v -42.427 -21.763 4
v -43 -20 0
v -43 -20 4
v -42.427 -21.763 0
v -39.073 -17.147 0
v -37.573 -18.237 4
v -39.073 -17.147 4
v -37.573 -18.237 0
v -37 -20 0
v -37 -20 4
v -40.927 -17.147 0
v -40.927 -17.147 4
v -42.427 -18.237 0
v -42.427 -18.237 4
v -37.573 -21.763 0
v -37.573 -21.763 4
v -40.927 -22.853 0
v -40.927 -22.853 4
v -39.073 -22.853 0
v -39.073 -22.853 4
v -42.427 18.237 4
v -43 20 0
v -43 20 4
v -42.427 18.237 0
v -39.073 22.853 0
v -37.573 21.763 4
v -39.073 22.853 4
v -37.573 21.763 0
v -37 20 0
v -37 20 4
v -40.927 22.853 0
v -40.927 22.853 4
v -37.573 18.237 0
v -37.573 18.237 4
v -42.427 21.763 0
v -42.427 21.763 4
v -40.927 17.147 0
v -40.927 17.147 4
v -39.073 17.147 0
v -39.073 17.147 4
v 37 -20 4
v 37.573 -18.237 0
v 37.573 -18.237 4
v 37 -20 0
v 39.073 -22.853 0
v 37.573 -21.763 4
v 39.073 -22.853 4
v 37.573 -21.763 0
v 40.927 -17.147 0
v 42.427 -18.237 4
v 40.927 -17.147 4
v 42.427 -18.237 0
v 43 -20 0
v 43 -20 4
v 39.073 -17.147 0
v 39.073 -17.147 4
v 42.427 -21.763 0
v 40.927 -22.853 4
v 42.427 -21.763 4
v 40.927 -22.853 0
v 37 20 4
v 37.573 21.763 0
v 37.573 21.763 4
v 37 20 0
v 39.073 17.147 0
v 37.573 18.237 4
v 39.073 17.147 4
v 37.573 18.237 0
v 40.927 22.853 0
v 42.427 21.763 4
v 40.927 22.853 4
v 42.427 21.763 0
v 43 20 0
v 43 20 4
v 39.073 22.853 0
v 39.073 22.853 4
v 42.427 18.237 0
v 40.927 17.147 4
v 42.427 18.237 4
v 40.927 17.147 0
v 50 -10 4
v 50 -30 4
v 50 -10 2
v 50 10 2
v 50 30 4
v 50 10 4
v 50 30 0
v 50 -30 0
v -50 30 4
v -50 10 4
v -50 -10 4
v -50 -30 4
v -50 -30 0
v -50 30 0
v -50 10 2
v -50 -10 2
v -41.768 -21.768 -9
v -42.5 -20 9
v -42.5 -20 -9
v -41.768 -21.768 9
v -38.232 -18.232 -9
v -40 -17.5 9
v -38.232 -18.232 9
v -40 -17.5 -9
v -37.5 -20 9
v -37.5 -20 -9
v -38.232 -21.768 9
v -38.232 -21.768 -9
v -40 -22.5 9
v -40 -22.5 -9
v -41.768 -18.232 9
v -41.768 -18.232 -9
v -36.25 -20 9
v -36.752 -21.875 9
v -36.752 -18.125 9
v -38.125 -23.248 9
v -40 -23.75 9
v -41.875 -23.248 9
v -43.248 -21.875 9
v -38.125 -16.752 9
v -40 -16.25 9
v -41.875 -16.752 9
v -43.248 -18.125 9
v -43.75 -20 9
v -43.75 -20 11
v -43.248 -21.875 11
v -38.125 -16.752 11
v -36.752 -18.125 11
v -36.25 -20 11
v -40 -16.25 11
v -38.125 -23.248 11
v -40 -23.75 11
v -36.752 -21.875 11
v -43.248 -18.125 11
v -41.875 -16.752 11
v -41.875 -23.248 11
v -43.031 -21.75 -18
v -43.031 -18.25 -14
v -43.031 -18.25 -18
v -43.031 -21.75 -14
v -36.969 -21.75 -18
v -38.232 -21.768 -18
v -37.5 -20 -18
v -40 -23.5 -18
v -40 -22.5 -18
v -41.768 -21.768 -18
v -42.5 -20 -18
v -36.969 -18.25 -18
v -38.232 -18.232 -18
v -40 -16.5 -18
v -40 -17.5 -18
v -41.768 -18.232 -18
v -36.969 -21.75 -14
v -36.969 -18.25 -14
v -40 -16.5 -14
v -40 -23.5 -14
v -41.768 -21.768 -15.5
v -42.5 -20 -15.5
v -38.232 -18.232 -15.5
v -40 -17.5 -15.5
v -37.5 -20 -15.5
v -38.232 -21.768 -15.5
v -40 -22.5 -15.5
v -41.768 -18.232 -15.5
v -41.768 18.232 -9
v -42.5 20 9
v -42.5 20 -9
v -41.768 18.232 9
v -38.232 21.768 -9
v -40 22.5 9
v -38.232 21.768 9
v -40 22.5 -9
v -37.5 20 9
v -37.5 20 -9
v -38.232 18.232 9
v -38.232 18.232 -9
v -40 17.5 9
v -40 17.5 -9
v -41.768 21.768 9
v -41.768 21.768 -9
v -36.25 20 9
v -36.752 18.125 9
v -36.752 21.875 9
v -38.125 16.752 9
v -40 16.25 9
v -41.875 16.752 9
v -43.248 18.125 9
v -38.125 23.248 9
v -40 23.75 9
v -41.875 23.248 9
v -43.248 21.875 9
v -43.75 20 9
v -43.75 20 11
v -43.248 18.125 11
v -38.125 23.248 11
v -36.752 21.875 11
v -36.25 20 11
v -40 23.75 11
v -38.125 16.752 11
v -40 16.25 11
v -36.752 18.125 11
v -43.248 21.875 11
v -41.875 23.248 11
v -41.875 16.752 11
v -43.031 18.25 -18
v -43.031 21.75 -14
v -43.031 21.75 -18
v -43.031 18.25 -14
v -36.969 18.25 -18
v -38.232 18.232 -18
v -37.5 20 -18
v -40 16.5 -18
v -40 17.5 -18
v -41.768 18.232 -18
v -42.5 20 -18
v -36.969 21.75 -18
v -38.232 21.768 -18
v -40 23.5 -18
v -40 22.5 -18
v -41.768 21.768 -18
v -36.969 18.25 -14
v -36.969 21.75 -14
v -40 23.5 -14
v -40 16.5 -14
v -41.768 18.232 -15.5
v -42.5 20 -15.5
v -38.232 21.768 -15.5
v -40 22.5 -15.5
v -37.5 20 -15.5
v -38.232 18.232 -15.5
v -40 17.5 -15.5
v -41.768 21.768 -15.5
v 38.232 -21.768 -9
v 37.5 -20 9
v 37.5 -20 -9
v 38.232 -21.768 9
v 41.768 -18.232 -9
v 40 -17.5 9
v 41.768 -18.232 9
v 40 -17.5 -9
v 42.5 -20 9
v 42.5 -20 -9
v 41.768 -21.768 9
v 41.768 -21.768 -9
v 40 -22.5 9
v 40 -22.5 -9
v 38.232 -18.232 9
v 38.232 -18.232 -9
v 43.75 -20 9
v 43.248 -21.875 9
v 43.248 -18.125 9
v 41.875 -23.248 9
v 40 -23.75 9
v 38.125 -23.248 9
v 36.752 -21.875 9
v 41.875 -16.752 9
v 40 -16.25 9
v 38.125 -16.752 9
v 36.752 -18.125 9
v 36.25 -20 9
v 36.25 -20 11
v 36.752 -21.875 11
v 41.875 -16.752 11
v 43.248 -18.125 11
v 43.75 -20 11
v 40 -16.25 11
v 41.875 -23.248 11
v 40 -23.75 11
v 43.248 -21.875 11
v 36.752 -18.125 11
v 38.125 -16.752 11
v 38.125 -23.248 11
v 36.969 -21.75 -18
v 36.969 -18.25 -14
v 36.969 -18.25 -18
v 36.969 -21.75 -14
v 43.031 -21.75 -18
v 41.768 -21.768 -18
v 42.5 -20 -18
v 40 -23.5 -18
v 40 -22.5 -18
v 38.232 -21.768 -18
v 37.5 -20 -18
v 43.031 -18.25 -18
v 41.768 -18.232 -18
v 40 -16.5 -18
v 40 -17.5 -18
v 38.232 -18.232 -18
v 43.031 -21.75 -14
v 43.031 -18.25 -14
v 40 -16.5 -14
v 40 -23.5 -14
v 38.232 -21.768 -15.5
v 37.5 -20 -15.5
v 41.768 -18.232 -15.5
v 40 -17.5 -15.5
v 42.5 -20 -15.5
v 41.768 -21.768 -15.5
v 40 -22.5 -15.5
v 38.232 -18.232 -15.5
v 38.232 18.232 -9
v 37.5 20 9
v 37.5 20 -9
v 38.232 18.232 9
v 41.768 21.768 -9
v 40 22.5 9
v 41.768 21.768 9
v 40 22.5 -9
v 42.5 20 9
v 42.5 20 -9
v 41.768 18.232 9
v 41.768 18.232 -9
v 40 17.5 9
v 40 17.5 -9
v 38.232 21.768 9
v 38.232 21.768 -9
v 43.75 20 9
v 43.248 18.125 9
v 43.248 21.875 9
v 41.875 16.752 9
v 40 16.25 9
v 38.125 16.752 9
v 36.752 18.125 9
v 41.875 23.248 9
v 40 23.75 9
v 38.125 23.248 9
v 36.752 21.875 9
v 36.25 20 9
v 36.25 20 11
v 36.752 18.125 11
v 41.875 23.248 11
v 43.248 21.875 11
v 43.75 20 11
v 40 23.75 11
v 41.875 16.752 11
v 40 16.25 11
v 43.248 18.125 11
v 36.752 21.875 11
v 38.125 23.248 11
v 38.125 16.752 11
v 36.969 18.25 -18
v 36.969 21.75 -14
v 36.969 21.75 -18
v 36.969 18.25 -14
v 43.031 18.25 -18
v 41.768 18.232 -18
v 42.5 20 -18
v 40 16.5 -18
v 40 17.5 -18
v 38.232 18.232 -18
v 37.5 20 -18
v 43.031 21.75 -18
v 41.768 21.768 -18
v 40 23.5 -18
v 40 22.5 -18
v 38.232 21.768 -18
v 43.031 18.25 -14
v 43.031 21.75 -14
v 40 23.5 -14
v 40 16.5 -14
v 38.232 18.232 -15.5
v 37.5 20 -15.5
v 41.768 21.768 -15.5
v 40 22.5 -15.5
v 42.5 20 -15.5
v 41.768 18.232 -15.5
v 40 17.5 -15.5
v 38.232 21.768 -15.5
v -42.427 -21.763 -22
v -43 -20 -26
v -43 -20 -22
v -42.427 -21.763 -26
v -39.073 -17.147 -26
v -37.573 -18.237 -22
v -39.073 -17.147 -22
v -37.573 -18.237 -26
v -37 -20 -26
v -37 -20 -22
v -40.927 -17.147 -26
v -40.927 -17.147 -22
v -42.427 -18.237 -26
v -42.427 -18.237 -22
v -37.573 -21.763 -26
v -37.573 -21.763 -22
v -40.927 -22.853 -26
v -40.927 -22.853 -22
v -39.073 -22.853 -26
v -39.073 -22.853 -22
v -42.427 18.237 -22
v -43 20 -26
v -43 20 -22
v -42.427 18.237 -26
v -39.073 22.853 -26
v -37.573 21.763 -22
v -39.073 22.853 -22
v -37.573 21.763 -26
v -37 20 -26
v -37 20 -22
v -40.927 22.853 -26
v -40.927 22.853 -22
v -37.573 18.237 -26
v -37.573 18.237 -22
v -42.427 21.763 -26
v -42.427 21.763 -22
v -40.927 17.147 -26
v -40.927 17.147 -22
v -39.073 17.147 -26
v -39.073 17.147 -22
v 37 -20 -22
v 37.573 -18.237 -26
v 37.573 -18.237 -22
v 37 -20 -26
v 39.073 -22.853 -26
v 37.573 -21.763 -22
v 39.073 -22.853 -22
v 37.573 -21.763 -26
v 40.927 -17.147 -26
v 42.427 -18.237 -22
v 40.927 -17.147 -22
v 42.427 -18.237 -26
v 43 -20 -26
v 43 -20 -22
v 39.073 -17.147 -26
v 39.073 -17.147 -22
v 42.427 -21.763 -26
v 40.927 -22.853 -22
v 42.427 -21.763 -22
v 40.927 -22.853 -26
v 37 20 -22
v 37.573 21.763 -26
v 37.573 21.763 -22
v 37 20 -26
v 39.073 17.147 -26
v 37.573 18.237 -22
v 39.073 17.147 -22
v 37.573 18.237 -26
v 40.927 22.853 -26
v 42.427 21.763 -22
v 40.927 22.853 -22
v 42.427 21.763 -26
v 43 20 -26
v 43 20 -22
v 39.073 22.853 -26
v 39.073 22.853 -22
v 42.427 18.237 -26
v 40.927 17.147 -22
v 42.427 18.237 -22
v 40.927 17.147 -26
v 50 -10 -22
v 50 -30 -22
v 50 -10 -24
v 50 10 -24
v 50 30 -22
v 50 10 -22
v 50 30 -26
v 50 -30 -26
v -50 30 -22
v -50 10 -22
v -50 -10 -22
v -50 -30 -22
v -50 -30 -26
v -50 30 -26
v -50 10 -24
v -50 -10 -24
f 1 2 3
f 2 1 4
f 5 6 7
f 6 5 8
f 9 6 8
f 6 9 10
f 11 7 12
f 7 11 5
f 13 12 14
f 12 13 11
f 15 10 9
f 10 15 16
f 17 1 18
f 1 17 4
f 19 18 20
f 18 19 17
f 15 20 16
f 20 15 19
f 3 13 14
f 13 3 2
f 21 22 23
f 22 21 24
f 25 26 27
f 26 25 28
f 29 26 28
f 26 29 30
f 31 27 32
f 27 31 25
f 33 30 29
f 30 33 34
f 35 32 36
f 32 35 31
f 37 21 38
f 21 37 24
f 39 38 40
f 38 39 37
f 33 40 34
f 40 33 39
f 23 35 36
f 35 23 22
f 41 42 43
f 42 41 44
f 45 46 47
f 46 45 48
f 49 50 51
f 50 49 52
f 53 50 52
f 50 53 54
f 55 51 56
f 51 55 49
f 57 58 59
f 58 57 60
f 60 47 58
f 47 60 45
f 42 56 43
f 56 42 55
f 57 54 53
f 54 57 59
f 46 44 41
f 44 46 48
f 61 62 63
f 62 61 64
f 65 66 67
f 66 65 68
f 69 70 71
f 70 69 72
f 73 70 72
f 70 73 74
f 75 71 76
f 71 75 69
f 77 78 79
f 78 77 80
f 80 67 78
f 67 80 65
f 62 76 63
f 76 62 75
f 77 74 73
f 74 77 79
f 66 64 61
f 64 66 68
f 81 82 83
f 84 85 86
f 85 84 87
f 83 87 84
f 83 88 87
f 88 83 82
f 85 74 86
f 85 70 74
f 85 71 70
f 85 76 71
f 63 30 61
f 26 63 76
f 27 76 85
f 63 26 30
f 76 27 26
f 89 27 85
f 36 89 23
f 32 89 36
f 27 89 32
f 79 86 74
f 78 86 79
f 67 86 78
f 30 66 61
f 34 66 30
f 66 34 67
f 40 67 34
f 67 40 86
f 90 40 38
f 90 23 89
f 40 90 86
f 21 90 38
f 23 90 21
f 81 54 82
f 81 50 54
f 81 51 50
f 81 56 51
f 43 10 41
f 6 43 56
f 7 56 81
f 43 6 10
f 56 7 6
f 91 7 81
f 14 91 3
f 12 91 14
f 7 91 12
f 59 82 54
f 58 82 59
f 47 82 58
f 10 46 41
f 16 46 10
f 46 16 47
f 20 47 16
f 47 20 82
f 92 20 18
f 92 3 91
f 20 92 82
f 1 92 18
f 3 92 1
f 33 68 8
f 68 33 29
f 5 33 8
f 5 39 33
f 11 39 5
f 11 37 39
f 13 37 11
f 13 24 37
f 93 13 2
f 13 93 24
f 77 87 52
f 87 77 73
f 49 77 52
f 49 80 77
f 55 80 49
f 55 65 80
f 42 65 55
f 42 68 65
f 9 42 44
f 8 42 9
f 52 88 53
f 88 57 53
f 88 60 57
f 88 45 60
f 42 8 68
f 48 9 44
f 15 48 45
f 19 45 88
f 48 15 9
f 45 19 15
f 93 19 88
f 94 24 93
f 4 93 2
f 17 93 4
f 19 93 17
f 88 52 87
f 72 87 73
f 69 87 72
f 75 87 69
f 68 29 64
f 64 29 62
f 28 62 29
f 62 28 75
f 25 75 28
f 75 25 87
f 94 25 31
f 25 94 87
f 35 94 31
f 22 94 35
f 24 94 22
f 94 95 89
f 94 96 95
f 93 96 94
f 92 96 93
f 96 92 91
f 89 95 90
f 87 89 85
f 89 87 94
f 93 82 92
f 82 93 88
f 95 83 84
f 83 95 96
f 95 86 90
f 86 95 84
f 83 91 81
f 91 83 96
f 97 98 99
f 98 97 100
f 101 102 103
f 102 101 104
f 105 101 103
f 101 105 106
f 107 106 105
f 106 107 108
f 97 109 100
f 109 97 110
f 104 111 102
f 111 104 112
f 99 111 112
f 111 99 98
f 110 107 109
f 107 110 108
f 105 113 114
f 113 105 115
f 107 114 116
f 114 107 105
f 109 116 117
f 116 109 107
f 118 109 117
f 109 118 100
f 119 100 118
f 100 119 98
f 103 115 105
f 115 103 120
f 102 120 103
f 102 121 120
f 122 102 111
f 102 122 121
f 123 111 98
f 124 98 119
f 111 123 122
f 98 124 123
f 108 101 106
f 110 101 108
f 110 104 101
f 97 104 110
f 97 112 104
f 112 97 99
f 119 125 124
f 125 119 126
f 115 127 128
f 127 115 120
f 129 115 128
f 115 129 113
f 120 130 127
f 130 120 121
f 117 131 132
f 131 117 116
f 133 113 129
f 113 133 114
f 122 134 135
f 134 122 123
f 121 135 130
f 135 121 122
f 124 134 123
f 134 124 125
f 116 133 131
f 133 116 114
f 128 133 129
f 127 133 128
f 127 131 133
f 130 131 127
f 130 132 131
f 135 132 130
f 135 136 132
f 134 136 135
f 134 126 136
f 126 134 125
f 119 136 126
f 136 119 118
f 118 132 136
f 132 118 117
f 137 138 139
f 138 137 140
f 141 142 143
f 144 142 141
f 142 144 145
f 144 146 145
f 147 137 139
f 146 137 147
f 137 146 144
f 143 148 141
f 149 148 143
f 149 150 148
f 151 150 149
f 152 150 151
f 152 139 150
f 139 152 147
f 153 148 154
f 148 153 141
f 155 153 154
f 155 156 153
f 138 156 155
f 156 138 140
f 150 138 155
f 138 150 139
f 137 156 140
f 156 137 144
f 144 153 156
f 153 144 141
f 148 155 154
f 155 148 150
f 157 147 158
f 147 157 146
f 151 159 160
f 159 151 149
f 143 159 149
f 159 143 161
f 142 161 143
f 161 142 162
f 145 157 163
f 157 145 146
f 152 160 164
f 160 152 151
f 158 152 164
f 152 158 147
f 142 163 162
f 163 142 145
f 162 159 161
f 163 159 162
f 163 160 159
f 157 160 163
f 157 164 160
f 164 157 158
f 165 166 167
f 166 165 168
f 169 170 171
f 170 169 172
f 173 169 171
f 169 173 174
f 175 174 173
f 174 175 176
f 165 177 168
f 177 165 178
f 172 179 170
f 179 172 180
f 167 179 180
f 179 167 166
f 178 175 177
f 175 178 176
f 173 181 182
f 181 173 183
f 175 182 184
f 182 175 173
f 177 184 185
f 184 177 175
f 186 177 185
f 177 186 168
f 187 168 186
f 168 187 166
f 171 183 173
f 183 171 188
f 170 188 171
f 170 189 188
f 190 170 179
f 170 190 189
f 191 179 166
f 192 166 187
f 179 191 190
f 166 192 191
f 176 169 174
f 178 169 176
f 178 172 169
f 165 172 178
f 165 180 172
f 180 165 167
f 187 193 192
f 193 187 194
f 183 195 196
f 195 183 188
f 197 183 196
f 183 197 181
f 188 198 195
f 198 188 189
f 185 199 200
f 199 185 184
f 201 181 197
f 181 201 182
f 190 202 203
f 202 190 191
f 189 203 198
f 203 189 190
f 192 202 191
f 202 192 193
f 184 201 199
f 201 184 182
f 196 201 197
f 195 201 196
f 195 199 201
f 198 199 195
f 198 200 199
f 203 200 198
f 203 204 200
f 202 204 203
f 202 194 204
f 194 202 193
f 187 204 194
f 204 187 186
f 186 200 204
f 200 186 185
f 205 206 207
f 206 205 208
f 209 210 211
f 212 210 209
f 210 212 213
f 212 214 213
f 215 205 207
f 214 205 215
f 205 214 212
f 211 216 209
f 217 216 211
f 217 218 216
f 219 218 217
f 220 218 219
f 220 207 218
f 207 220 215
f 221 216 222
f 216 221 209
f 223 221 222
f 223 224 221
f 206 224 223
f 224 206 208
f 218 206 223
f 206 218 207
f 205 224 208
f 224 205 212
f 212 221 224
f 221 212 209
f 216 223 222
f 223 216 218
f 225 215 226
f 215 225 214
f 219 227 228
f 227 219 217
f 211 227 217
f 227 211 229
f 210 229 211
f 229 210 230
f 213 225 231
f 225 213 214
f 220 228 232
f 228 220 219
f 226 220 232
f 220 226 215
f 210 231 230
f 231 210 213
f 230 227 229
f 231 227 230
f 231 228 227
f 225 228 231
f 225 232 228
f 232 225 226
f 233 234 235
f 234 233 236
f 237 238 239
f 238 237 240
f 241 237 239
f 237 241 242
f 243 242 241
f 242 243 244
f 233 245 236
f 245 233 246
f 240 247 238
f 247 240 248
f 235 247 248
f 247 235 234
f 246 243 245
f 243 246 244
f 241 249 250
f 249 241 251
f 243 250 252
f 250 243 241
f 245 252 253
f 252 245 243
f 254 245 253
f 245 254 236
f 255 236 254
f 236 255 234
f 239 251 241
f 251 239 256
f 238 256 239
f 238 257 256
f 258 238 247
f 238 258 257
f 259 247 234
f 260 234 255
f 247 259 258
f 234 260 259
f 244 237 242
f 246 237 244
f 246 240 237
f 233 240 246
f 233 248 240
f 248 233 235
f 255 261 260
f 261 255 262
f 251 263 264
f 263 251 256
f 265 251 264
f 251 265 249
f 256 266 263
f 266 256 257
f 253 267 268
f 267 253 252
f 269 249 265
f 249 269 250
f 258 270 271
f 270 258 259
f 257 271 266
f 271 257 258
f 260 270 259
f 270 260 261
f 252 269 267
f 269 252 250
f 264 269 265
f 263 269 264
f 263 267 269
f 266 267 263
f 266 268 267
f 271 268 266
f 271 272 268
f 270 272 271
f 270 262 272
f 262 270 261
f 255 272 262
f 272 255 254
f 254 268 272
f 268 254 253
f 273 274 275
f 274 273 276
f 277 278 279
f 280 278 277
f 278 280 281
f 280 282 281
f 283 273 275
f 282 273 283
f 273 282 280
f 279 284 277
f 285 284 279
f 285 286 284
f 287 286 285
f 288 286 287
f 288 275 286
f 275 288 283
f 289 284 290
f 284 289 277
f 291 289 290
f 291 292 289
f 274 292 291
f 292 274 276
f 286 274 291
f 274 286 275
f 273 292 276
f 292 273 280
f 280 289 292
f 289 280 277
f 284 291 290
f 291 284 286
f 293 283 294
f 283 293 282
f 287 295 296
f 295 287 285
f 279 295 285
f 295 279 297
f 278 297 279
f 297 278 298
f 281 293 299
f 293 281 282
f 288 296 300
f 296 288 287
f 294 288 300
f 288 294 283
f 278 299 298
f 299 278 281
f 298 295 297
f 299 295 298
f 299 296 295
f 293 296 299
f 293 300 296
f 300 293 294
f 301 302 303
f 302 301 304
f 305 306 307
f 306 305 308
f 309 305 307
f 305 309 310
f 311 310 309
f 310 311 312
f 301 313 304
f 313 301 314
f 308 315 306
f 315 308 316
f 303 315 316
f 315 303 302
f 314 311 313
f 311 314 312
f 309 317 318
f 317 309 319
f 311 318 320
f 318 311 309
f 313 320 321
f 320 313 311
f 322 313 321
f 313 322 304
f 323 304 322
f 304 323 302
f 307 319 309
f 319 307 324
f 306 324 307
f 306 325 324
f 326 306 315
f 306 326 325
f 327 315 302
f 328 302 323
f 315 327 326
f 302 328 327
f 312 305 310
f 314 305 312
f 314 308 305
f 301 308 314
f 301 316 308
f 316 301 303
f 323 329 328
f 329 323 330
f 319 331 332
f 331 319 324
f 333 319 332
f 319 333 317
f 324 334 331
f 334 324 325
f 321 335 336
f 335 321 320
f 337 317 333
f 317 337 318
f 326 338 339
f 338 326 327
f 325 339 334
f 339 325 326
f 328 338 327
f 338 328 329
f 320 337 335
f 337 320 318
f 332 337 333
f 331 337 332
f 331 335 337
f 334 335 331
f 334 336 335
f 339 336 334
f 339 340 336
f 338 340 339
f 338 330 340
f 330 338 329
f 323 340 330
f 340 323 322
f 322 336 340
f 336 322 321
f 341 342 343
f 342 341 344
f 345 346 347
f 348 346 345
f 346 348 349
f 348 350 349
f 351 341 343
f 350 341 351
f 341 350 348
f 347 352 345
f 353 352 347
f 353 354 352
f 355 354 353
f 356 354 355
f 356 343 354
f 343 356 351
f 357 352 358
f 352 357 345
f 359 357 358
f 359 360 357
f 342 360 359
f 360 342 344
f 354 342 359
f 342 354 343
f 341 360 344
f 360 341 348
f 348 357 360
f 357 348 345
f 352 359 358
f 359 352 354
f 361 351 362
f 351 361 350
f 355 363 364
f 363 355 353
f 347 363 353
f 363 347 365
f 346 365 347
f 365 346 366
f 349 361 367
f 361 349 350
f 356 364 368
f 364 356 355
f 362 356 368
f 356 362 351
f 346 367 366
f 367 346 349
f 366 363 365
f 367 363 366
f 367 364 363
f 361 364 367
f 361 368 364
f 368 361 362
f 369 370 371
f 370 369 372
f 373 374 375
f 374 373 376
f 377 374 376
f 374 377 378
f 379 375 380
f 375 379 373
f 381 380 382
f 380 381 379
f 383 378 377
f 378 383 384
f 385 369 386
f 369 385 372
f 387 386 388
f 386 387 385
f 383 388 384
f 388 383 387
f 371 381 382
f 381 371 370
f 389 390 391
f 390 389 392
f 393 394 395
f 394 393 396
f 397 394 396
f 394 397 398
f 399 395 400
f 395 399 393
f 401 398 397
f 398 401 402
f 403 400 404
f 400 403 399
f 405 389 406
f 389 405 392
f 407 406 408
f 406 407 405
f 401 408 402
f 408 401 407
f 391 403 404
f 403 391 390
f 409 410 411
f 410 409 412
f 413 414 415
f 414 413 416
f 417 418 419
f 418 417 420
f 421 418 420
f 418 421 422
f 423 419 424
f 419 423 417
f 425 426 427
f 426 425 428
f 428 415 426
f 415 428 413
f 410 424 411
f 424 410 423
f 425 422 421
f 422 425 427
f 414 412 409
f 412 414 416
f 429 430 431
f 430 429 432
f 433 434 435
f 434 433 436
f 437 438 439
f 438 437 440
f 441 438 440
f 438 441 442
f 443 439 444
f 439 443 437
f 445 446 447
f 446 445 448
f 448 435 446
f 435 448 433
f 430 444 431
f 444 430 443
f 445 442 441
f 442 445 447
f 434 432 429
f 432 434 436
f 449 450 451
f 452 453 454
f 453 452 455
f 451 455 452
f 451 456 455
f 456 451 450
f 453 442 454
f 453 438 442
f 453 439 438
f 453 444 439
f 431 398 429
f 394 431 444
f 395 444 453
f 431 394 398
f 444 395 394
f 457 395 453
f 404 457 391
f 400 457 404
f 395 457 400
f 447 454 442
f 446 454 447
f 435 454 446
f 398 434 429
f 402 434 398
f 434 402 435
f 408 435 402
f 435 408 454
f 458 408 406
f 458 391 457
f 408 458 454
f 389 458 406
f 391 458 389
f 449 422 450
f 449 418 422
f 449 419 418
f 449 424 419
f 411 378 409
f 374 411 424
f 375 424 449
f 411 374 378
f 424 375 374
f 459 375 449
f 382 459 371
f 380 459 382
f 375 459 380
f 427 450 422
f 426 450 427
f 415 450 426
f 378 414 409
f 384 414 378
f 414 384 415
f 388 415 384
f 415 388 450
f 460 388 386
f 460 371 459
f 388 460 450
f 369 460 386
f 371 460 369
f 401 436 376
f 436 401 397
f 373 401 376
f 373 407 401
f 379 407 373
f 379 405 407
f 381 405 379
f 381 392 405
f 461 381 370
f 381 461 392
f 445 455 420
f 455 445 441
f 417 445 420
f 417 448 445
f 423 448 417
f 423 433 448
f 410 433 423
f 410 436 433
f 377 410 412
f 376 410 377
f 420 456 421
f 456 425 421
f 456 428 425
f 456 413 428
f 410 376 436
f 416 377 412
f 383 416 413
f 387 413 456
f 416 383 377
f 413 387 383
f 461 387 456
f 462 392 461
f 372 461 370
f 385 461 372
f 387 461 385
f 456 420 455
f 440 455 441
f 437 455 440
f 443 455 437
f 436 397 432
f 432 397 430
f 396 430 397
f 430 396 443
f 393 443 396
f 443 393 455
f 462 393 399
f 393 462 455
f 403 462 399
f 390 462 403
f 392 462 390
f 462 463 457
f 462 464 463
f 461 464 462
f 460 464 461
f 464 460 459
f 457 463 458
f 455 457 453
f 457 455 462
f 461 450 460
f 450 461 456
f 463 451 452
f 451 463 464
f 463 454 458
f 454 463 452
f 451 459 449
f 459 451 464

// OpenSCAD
// Parameters
plate_length = 100; // Length of the base plate
plate_width = 60;   // Width of the base plate
plate_thickness = 4; // Thickness of the base plate (reduced to match original model)
hole_diameter = 6;  // Diameter of the circular holes
hole_offset = 10;   // Distance of the holes from the edges
groove_width = 20;  // Width of the central groove
groove_depth = 2;   // Depth of the central groove
bolt_diameter = 5;  // Diameter of the bolt
bolt_length = 18;   // Length of the bolt (shortened to match original model)
nut_size = 7;       // Width across flats of the nut (reduced to match original model)
nut_thickness = 4;  // Thickness of the nut

// Base plate module
module base_plate() {
    difference() {
        // Main plate
        cube([plate_length, plate_width, plate_thickness], center = true);
        
        // Circular holes
        for (x = [-plate_length/2 + hole_offset, plate_length/2 - hole_offset])
            for (y = [-plate_width/2 + hole_offset, plate_width/2 - hole_offset])
                translate([x, y, 0])
                    cylinder(h = plate_thickness + 1, d = hole_diameter, center = true);
        
        // Central groove
        translate([0, 0, plate_thickness/2 - groove_depth/2])
            cube([plate_length, groove_width, groove_depth], center = true);
    }
}

// Bolt module
module bolt() {
    union() {
        // Bolt shaft
        cylinder(h = bolt_length, d = bolt_diameter, center = false);
        
        // Bolt head
        translate([0, 0, bolt_length])
            cylinder(h = 2, d = bolt_diameter * 1.5, center = false);
    }
}

// Nut module
module nut() {
    difference() {
        // Hexagonal prism
        translate([0, 0, nut_thickness/2])
            rotate([0, 0, 30])
                linear_extrude(height = nut_thickness)
                    polygon(points = [[-nut_size/2, 0], [-nut_size/4, nut_size * sqrt(3)/4], [nut_size/4, nut_size * sqrt(3)/4], [nut_size/2, 0], [nut_size/4, -nut_size * sqrt(3)/4], [-nut_size/4, -nut_size * sqrt(3)/4]]);
        
        // Threaded hole
        translate([0, 0, nut_thickness/2])
            cylinder(h = nut_thickness + 1, d = bolt_diameter, center = true);
    }
}

// Assembly
module assembly() {
    // Layer 1: Top base plate
    translate([0, 0, plate_thickness/2])
        base_plate();
    
    // Layer 2: Bolts and nuts
    for (x = [-plate_length/2 + hole_offset, plate_length/2 - hole_offset])
        for (y = [-plate_width/2 + hole_offset, plate_width/2 - hole_offset]) {
            // Bolts
            translate([x, y, -bolt_length/2])
                bolt();
            
            // Nuts
            translate([x, y, -bolt_length - nut_thickness/2])
                nut();
        }
    
    // Layer 3: Bottom base plate
    translate([0, 0, -plate_thickness/2 - bolt_length - nut_thickness])
        base_plate();
}

// Render the assembly
assembly();
